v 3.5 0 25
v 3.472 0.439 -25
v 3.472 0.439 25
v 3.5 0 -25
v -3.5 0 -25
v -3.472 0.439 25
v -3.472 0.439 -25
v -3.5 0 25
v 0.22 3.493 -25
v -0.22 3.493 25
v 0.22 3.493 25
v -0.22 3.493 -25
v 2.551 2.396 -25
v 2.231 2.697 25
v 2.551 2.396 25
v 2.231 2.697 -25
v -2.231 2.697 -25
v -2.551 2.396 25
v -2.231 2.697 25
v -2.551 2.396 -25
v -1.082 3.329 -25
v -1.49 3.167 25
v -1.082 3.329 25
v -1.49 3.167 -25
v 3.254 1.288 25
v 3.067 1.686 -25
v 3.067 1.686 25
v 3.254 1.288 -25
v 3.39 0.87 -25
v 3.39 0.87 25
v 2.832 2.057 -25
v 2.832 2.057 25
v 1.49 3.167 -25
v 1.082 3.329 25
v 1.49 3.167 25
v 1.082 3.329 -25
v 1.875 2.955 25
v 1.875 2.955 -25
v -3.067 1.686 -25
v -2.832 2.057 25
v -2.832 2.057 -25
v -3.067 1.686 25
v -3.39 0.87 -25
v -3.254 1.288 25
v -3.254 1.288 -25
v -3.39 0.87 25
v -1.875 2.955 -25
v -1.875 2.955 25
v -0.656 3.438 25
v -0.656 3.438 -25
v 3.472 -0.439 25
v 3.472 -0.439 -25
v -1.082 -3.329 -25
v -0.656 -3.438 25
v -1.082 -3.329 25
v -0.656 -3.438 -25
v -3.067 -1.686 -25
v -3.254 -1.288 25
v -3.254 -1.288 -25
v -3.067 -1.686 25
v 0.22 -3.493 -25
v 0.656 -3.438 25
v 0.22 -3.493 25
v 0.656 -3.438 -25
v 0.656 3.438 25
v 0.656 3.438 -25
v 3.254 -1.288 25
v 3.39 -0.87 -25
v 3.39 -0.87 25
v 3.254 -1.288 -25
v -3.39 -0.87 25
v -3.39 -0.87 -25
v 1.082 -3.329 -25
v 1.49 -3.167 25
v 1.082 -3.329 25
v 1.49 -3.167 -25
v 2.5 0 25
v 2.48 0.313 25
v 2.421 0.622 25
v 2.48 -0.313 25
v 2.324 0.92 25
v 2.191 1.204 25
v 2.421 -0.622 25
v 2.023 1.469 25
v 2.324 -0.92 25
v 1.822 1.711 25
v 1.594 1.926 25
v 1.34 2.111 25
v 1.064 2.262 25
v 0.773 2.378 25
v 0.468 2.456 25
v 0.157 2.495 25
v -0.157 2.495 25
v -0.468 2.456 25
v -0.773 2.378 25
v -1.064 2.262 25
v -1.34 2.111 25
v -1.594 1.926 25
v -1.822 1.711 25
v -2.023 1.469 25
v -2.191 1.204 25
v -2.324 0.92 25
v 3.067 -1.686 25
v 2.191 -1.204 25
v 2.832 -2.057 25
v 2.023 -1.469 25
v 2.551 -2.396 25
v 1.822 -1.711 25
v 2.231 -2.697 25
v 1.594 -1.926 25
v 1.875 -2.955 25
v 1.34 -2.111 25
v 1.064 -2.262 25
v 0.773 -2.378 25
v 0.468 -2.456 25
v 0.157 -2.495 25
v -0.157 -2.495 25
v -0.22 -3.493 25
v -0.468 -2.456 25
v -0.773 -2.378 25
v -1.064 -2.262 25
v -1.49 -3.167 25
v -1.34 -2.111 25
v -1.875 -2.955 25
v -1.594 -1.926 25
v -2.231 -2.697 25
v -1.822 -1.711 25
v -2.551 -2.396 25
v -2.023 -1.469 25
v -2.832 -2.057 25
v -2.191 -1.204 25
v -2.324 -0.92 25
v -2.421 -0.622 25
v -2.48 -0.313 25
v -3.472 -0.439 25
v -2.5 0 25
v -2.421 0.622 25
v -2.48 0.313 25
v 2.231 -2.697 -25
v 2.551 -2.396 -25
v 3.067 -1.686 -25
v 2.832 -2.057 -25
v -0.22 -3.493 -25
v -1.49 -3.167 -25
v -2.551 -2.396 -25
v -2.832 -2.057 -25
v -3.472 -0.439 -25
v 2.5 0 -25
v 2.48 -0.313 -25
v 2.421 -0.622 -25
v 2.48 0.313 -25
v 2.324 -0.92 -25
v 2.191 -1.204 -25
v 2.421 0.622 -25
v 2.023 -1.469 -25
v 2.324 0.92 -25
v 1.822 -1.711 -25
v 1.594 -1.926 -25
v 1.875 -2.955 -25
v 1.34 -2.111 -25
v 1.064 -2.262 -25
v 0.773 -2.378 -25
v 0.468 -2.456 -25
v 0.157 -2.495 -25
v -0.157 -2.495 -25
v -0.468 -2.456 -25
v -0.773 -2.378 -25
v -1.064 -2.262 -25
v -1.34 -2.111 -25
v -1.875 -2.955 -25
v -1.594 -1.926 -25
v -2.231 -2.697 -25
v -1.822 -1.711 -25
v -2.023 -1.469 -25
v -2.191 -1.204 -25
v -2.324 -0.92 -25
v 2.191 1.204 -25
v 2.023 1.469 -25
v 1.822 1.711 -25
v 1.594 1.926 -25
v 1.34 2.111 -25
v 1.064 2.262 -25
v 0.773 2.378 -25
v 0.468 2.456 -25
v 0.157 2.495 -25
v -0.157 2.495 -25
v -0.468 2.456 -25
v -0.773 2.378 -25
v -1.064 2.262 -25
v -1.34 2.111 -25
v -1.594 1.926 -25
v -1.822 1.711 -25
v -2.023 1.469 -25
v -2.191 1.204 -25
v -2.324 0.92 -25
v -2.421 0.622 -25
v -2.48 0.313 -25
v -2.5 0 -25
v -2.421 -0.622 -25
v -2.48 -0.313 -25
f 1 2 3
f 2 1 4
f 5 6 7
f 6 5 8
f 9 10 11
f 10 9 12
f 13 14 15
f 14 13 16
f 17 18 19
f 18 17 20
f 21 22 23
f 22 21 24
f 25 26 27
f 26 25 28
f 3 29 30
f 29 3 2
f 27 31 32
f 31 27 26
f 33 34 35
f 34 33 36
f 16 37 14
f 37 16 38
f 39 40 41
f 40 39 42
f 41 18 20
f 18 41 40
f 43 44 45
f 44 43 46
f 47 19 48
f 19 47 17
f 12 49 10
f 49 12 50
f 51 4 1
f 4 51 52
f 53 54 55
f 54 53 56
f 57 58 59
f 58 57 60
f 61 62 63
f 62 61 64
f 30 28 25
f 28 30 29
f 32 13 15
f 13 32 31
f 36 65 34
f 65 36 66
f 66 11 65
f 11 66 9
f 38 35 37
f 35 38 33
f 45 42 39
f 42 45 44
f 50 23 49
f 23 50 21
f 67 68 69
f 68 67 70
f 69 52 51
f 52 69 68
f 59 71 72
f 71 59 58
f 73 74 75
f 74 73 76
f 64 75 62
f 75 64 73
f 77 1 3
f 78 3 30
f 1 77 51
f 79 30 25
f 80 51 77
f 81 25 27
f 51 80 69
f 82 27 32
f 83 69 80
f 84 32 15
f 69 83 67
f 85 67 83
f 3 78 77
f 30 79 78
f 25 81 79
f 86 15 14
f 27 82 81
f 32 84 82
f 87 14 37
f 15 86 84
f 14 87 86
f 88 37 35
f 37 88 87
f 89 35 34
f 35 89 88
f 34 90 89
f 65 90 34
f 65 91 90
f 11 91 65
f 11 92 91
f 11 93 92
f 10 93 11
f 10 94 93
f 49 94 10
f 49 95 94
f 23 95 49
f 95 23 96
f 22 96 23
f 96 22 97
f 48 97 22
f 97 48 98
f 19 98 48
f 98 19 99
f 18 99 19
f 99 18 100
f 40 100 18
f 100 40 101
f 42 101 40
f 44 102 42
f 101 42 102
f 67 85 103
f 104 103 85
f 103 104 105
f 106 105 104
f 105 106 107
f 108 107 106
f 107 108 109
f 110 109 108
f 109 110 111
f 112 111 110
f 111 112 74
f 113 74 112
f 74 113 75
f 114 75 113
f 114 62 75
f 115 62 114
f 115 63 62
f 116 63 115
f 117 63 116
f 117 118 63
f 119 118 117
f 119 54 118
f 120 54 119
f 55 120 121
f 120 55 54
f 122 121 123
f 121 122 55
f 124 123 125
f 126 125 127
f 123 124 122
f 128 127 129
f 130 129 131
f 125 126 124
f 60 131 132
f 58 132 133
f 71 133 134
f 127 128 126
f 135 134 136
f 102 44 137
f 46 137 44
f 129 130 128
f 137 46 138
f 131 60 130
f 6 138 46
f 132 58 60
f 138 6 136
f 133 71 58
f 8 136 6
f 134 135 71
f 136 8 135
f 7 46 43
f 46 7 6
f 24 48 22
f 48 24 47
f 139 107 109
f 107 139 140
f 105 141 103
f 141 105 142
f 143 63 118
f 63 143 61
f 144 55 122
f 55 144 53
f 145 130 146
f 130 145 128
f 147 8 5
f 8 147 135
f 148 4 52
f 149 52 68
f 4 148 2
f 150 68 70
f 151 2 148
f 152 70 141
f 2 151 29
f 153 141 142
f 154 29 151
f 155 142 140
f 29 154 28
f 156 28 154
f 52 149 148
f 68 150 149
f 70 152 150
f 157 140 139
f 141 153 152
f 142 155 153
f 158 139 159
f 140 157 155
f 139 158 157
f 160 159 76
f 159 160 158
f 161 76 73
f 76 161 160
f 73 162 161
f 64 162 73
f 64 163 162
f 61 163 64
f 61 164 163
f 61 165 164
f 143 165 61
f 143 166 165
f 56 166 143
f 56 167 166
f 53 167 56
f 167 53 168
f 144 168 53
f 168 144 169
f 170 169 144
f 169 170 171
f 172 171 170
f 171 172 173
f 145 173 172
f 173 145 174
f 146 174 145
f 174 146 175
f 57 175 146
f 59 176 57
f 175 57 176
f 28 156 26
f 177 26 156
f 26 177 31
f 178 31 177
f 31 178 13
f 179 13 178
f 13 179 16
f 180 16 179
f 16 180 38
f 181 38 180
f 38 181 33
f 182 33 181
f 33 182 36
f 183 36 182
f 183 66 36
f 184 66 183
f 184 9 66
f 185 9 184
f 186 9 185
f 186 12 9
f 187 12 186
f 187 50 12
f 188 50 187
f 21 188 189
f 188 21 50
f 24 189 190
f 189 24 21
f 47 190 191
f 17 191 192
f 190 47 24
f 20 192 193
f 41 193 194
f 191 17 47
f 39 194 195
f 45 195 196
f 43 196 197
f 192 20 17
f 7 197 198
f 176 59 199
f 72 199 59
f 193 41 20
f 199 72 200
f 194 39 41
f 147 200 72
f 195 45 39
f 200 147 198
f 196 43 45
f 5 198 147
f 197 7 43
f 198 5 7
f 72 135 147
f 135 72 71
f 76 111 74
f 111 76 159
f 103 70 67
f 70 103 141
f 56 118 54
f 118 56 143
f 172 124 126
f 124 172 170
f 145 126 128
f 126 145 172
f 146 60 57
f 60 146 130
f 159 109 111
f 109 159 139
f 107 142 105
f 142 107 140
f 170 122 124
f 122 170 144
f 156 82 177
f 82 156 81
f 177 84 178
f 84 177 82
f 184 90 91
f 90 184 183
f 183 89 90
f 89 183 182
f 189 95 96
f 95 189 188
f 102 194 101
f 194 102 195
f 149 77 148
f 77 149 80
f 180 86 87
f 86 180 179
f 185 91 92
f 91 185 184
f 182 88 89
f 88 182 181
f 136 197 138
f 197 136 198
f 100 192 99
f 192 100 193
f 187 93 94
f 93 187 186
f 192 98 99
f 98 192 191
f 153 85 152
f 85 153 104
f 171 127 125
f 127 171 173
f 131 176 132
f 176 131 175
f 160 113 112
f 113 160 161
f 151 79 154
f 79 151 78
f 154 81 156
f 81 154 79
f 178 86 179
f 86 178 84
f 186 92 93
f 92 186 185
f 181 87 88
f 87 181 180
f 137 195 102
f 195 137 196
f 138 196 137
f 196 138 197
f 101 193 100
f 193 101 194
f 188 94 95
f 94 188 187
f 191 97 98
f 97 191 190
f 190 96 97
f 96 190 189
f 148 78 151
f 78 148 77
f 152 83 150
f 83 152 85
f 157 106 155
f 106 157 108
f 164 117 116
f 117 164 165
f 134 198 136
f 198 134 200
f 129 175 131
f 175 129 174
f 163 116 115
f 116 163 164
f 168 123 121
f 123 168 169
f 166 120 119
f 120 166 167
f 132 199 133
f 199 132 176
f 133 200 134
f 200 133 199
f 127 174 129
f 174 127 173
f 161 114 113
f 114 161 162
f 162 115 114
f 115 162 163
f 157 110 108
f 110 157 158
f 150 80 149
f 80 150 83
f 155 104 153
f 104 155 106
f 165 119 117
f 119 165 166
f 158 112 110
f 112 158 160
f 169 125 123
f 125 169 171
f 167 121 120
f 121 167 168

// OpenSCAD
$fn = 50;


difference() {
	union() {
		translate(v = [0, 0, -25.0000000000]) {
			cylinder(h = 50, r = 3.5000000000);
		}
	}
	union() {
		translate(v = [0, 0, -100.0000000000]) {
			cylinder(h = 200, r = 2.5000000000);
		}
	}
}
